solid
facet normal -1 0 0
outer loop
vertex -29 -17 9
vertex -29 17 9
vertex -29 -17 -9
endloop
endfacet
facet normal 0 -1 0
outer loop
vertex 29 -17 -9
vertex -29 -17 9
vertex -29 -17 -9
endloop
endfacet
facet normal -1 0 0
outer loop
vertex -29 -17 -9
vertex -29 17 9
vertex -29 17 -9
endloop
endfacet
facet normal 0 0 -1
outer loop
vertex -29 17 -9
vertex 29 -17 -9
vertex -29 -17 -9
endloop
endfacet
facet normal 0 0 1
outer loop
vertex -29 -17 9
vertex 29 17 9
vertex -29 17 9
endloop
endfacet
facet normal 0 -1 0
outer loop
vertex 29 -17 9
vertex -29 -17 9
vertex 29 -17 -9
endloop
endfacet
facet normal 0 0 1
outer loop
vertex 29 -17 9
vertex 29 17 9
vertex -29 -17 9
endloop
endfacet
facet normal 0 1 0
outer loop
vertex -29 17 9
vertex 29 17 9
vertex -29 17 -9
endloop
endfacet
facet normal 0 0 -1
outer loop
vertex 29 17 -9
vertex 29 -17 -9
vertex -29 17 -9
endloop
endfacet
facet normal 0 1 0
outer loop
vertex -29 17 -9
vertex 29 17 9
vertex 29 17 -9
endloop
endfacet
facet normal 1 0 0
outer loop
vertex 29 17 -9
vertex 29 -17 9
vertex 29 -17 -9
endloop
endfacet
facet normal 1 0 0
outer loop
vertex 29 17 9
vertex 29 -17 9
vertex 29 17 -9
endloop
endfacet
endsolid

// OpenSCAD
polyhedron(points=[[-29.0, -17.0, -9.0], [-29.0, -17.0, 9.0], [-29.0, 17.0, -9.0], [-29.0, 17.0, 9.0], [29.0, -17.0, -9.0], [29.0, -17.0, 9.0], [29.0, 17.0, -9.0], [29.0, 17.0, 9.0]], faces=[[1, 3, 0], [4, 1, 0], [0, 3, 2], [2, 4, 0], [1, 7, 3], [5, 1, 4], [5, 7, 1], [3, 7, 2], [6, 4, 2], [2, 7, 6], [6, 5, 4], [7, 5, 6]], convexity=20);
